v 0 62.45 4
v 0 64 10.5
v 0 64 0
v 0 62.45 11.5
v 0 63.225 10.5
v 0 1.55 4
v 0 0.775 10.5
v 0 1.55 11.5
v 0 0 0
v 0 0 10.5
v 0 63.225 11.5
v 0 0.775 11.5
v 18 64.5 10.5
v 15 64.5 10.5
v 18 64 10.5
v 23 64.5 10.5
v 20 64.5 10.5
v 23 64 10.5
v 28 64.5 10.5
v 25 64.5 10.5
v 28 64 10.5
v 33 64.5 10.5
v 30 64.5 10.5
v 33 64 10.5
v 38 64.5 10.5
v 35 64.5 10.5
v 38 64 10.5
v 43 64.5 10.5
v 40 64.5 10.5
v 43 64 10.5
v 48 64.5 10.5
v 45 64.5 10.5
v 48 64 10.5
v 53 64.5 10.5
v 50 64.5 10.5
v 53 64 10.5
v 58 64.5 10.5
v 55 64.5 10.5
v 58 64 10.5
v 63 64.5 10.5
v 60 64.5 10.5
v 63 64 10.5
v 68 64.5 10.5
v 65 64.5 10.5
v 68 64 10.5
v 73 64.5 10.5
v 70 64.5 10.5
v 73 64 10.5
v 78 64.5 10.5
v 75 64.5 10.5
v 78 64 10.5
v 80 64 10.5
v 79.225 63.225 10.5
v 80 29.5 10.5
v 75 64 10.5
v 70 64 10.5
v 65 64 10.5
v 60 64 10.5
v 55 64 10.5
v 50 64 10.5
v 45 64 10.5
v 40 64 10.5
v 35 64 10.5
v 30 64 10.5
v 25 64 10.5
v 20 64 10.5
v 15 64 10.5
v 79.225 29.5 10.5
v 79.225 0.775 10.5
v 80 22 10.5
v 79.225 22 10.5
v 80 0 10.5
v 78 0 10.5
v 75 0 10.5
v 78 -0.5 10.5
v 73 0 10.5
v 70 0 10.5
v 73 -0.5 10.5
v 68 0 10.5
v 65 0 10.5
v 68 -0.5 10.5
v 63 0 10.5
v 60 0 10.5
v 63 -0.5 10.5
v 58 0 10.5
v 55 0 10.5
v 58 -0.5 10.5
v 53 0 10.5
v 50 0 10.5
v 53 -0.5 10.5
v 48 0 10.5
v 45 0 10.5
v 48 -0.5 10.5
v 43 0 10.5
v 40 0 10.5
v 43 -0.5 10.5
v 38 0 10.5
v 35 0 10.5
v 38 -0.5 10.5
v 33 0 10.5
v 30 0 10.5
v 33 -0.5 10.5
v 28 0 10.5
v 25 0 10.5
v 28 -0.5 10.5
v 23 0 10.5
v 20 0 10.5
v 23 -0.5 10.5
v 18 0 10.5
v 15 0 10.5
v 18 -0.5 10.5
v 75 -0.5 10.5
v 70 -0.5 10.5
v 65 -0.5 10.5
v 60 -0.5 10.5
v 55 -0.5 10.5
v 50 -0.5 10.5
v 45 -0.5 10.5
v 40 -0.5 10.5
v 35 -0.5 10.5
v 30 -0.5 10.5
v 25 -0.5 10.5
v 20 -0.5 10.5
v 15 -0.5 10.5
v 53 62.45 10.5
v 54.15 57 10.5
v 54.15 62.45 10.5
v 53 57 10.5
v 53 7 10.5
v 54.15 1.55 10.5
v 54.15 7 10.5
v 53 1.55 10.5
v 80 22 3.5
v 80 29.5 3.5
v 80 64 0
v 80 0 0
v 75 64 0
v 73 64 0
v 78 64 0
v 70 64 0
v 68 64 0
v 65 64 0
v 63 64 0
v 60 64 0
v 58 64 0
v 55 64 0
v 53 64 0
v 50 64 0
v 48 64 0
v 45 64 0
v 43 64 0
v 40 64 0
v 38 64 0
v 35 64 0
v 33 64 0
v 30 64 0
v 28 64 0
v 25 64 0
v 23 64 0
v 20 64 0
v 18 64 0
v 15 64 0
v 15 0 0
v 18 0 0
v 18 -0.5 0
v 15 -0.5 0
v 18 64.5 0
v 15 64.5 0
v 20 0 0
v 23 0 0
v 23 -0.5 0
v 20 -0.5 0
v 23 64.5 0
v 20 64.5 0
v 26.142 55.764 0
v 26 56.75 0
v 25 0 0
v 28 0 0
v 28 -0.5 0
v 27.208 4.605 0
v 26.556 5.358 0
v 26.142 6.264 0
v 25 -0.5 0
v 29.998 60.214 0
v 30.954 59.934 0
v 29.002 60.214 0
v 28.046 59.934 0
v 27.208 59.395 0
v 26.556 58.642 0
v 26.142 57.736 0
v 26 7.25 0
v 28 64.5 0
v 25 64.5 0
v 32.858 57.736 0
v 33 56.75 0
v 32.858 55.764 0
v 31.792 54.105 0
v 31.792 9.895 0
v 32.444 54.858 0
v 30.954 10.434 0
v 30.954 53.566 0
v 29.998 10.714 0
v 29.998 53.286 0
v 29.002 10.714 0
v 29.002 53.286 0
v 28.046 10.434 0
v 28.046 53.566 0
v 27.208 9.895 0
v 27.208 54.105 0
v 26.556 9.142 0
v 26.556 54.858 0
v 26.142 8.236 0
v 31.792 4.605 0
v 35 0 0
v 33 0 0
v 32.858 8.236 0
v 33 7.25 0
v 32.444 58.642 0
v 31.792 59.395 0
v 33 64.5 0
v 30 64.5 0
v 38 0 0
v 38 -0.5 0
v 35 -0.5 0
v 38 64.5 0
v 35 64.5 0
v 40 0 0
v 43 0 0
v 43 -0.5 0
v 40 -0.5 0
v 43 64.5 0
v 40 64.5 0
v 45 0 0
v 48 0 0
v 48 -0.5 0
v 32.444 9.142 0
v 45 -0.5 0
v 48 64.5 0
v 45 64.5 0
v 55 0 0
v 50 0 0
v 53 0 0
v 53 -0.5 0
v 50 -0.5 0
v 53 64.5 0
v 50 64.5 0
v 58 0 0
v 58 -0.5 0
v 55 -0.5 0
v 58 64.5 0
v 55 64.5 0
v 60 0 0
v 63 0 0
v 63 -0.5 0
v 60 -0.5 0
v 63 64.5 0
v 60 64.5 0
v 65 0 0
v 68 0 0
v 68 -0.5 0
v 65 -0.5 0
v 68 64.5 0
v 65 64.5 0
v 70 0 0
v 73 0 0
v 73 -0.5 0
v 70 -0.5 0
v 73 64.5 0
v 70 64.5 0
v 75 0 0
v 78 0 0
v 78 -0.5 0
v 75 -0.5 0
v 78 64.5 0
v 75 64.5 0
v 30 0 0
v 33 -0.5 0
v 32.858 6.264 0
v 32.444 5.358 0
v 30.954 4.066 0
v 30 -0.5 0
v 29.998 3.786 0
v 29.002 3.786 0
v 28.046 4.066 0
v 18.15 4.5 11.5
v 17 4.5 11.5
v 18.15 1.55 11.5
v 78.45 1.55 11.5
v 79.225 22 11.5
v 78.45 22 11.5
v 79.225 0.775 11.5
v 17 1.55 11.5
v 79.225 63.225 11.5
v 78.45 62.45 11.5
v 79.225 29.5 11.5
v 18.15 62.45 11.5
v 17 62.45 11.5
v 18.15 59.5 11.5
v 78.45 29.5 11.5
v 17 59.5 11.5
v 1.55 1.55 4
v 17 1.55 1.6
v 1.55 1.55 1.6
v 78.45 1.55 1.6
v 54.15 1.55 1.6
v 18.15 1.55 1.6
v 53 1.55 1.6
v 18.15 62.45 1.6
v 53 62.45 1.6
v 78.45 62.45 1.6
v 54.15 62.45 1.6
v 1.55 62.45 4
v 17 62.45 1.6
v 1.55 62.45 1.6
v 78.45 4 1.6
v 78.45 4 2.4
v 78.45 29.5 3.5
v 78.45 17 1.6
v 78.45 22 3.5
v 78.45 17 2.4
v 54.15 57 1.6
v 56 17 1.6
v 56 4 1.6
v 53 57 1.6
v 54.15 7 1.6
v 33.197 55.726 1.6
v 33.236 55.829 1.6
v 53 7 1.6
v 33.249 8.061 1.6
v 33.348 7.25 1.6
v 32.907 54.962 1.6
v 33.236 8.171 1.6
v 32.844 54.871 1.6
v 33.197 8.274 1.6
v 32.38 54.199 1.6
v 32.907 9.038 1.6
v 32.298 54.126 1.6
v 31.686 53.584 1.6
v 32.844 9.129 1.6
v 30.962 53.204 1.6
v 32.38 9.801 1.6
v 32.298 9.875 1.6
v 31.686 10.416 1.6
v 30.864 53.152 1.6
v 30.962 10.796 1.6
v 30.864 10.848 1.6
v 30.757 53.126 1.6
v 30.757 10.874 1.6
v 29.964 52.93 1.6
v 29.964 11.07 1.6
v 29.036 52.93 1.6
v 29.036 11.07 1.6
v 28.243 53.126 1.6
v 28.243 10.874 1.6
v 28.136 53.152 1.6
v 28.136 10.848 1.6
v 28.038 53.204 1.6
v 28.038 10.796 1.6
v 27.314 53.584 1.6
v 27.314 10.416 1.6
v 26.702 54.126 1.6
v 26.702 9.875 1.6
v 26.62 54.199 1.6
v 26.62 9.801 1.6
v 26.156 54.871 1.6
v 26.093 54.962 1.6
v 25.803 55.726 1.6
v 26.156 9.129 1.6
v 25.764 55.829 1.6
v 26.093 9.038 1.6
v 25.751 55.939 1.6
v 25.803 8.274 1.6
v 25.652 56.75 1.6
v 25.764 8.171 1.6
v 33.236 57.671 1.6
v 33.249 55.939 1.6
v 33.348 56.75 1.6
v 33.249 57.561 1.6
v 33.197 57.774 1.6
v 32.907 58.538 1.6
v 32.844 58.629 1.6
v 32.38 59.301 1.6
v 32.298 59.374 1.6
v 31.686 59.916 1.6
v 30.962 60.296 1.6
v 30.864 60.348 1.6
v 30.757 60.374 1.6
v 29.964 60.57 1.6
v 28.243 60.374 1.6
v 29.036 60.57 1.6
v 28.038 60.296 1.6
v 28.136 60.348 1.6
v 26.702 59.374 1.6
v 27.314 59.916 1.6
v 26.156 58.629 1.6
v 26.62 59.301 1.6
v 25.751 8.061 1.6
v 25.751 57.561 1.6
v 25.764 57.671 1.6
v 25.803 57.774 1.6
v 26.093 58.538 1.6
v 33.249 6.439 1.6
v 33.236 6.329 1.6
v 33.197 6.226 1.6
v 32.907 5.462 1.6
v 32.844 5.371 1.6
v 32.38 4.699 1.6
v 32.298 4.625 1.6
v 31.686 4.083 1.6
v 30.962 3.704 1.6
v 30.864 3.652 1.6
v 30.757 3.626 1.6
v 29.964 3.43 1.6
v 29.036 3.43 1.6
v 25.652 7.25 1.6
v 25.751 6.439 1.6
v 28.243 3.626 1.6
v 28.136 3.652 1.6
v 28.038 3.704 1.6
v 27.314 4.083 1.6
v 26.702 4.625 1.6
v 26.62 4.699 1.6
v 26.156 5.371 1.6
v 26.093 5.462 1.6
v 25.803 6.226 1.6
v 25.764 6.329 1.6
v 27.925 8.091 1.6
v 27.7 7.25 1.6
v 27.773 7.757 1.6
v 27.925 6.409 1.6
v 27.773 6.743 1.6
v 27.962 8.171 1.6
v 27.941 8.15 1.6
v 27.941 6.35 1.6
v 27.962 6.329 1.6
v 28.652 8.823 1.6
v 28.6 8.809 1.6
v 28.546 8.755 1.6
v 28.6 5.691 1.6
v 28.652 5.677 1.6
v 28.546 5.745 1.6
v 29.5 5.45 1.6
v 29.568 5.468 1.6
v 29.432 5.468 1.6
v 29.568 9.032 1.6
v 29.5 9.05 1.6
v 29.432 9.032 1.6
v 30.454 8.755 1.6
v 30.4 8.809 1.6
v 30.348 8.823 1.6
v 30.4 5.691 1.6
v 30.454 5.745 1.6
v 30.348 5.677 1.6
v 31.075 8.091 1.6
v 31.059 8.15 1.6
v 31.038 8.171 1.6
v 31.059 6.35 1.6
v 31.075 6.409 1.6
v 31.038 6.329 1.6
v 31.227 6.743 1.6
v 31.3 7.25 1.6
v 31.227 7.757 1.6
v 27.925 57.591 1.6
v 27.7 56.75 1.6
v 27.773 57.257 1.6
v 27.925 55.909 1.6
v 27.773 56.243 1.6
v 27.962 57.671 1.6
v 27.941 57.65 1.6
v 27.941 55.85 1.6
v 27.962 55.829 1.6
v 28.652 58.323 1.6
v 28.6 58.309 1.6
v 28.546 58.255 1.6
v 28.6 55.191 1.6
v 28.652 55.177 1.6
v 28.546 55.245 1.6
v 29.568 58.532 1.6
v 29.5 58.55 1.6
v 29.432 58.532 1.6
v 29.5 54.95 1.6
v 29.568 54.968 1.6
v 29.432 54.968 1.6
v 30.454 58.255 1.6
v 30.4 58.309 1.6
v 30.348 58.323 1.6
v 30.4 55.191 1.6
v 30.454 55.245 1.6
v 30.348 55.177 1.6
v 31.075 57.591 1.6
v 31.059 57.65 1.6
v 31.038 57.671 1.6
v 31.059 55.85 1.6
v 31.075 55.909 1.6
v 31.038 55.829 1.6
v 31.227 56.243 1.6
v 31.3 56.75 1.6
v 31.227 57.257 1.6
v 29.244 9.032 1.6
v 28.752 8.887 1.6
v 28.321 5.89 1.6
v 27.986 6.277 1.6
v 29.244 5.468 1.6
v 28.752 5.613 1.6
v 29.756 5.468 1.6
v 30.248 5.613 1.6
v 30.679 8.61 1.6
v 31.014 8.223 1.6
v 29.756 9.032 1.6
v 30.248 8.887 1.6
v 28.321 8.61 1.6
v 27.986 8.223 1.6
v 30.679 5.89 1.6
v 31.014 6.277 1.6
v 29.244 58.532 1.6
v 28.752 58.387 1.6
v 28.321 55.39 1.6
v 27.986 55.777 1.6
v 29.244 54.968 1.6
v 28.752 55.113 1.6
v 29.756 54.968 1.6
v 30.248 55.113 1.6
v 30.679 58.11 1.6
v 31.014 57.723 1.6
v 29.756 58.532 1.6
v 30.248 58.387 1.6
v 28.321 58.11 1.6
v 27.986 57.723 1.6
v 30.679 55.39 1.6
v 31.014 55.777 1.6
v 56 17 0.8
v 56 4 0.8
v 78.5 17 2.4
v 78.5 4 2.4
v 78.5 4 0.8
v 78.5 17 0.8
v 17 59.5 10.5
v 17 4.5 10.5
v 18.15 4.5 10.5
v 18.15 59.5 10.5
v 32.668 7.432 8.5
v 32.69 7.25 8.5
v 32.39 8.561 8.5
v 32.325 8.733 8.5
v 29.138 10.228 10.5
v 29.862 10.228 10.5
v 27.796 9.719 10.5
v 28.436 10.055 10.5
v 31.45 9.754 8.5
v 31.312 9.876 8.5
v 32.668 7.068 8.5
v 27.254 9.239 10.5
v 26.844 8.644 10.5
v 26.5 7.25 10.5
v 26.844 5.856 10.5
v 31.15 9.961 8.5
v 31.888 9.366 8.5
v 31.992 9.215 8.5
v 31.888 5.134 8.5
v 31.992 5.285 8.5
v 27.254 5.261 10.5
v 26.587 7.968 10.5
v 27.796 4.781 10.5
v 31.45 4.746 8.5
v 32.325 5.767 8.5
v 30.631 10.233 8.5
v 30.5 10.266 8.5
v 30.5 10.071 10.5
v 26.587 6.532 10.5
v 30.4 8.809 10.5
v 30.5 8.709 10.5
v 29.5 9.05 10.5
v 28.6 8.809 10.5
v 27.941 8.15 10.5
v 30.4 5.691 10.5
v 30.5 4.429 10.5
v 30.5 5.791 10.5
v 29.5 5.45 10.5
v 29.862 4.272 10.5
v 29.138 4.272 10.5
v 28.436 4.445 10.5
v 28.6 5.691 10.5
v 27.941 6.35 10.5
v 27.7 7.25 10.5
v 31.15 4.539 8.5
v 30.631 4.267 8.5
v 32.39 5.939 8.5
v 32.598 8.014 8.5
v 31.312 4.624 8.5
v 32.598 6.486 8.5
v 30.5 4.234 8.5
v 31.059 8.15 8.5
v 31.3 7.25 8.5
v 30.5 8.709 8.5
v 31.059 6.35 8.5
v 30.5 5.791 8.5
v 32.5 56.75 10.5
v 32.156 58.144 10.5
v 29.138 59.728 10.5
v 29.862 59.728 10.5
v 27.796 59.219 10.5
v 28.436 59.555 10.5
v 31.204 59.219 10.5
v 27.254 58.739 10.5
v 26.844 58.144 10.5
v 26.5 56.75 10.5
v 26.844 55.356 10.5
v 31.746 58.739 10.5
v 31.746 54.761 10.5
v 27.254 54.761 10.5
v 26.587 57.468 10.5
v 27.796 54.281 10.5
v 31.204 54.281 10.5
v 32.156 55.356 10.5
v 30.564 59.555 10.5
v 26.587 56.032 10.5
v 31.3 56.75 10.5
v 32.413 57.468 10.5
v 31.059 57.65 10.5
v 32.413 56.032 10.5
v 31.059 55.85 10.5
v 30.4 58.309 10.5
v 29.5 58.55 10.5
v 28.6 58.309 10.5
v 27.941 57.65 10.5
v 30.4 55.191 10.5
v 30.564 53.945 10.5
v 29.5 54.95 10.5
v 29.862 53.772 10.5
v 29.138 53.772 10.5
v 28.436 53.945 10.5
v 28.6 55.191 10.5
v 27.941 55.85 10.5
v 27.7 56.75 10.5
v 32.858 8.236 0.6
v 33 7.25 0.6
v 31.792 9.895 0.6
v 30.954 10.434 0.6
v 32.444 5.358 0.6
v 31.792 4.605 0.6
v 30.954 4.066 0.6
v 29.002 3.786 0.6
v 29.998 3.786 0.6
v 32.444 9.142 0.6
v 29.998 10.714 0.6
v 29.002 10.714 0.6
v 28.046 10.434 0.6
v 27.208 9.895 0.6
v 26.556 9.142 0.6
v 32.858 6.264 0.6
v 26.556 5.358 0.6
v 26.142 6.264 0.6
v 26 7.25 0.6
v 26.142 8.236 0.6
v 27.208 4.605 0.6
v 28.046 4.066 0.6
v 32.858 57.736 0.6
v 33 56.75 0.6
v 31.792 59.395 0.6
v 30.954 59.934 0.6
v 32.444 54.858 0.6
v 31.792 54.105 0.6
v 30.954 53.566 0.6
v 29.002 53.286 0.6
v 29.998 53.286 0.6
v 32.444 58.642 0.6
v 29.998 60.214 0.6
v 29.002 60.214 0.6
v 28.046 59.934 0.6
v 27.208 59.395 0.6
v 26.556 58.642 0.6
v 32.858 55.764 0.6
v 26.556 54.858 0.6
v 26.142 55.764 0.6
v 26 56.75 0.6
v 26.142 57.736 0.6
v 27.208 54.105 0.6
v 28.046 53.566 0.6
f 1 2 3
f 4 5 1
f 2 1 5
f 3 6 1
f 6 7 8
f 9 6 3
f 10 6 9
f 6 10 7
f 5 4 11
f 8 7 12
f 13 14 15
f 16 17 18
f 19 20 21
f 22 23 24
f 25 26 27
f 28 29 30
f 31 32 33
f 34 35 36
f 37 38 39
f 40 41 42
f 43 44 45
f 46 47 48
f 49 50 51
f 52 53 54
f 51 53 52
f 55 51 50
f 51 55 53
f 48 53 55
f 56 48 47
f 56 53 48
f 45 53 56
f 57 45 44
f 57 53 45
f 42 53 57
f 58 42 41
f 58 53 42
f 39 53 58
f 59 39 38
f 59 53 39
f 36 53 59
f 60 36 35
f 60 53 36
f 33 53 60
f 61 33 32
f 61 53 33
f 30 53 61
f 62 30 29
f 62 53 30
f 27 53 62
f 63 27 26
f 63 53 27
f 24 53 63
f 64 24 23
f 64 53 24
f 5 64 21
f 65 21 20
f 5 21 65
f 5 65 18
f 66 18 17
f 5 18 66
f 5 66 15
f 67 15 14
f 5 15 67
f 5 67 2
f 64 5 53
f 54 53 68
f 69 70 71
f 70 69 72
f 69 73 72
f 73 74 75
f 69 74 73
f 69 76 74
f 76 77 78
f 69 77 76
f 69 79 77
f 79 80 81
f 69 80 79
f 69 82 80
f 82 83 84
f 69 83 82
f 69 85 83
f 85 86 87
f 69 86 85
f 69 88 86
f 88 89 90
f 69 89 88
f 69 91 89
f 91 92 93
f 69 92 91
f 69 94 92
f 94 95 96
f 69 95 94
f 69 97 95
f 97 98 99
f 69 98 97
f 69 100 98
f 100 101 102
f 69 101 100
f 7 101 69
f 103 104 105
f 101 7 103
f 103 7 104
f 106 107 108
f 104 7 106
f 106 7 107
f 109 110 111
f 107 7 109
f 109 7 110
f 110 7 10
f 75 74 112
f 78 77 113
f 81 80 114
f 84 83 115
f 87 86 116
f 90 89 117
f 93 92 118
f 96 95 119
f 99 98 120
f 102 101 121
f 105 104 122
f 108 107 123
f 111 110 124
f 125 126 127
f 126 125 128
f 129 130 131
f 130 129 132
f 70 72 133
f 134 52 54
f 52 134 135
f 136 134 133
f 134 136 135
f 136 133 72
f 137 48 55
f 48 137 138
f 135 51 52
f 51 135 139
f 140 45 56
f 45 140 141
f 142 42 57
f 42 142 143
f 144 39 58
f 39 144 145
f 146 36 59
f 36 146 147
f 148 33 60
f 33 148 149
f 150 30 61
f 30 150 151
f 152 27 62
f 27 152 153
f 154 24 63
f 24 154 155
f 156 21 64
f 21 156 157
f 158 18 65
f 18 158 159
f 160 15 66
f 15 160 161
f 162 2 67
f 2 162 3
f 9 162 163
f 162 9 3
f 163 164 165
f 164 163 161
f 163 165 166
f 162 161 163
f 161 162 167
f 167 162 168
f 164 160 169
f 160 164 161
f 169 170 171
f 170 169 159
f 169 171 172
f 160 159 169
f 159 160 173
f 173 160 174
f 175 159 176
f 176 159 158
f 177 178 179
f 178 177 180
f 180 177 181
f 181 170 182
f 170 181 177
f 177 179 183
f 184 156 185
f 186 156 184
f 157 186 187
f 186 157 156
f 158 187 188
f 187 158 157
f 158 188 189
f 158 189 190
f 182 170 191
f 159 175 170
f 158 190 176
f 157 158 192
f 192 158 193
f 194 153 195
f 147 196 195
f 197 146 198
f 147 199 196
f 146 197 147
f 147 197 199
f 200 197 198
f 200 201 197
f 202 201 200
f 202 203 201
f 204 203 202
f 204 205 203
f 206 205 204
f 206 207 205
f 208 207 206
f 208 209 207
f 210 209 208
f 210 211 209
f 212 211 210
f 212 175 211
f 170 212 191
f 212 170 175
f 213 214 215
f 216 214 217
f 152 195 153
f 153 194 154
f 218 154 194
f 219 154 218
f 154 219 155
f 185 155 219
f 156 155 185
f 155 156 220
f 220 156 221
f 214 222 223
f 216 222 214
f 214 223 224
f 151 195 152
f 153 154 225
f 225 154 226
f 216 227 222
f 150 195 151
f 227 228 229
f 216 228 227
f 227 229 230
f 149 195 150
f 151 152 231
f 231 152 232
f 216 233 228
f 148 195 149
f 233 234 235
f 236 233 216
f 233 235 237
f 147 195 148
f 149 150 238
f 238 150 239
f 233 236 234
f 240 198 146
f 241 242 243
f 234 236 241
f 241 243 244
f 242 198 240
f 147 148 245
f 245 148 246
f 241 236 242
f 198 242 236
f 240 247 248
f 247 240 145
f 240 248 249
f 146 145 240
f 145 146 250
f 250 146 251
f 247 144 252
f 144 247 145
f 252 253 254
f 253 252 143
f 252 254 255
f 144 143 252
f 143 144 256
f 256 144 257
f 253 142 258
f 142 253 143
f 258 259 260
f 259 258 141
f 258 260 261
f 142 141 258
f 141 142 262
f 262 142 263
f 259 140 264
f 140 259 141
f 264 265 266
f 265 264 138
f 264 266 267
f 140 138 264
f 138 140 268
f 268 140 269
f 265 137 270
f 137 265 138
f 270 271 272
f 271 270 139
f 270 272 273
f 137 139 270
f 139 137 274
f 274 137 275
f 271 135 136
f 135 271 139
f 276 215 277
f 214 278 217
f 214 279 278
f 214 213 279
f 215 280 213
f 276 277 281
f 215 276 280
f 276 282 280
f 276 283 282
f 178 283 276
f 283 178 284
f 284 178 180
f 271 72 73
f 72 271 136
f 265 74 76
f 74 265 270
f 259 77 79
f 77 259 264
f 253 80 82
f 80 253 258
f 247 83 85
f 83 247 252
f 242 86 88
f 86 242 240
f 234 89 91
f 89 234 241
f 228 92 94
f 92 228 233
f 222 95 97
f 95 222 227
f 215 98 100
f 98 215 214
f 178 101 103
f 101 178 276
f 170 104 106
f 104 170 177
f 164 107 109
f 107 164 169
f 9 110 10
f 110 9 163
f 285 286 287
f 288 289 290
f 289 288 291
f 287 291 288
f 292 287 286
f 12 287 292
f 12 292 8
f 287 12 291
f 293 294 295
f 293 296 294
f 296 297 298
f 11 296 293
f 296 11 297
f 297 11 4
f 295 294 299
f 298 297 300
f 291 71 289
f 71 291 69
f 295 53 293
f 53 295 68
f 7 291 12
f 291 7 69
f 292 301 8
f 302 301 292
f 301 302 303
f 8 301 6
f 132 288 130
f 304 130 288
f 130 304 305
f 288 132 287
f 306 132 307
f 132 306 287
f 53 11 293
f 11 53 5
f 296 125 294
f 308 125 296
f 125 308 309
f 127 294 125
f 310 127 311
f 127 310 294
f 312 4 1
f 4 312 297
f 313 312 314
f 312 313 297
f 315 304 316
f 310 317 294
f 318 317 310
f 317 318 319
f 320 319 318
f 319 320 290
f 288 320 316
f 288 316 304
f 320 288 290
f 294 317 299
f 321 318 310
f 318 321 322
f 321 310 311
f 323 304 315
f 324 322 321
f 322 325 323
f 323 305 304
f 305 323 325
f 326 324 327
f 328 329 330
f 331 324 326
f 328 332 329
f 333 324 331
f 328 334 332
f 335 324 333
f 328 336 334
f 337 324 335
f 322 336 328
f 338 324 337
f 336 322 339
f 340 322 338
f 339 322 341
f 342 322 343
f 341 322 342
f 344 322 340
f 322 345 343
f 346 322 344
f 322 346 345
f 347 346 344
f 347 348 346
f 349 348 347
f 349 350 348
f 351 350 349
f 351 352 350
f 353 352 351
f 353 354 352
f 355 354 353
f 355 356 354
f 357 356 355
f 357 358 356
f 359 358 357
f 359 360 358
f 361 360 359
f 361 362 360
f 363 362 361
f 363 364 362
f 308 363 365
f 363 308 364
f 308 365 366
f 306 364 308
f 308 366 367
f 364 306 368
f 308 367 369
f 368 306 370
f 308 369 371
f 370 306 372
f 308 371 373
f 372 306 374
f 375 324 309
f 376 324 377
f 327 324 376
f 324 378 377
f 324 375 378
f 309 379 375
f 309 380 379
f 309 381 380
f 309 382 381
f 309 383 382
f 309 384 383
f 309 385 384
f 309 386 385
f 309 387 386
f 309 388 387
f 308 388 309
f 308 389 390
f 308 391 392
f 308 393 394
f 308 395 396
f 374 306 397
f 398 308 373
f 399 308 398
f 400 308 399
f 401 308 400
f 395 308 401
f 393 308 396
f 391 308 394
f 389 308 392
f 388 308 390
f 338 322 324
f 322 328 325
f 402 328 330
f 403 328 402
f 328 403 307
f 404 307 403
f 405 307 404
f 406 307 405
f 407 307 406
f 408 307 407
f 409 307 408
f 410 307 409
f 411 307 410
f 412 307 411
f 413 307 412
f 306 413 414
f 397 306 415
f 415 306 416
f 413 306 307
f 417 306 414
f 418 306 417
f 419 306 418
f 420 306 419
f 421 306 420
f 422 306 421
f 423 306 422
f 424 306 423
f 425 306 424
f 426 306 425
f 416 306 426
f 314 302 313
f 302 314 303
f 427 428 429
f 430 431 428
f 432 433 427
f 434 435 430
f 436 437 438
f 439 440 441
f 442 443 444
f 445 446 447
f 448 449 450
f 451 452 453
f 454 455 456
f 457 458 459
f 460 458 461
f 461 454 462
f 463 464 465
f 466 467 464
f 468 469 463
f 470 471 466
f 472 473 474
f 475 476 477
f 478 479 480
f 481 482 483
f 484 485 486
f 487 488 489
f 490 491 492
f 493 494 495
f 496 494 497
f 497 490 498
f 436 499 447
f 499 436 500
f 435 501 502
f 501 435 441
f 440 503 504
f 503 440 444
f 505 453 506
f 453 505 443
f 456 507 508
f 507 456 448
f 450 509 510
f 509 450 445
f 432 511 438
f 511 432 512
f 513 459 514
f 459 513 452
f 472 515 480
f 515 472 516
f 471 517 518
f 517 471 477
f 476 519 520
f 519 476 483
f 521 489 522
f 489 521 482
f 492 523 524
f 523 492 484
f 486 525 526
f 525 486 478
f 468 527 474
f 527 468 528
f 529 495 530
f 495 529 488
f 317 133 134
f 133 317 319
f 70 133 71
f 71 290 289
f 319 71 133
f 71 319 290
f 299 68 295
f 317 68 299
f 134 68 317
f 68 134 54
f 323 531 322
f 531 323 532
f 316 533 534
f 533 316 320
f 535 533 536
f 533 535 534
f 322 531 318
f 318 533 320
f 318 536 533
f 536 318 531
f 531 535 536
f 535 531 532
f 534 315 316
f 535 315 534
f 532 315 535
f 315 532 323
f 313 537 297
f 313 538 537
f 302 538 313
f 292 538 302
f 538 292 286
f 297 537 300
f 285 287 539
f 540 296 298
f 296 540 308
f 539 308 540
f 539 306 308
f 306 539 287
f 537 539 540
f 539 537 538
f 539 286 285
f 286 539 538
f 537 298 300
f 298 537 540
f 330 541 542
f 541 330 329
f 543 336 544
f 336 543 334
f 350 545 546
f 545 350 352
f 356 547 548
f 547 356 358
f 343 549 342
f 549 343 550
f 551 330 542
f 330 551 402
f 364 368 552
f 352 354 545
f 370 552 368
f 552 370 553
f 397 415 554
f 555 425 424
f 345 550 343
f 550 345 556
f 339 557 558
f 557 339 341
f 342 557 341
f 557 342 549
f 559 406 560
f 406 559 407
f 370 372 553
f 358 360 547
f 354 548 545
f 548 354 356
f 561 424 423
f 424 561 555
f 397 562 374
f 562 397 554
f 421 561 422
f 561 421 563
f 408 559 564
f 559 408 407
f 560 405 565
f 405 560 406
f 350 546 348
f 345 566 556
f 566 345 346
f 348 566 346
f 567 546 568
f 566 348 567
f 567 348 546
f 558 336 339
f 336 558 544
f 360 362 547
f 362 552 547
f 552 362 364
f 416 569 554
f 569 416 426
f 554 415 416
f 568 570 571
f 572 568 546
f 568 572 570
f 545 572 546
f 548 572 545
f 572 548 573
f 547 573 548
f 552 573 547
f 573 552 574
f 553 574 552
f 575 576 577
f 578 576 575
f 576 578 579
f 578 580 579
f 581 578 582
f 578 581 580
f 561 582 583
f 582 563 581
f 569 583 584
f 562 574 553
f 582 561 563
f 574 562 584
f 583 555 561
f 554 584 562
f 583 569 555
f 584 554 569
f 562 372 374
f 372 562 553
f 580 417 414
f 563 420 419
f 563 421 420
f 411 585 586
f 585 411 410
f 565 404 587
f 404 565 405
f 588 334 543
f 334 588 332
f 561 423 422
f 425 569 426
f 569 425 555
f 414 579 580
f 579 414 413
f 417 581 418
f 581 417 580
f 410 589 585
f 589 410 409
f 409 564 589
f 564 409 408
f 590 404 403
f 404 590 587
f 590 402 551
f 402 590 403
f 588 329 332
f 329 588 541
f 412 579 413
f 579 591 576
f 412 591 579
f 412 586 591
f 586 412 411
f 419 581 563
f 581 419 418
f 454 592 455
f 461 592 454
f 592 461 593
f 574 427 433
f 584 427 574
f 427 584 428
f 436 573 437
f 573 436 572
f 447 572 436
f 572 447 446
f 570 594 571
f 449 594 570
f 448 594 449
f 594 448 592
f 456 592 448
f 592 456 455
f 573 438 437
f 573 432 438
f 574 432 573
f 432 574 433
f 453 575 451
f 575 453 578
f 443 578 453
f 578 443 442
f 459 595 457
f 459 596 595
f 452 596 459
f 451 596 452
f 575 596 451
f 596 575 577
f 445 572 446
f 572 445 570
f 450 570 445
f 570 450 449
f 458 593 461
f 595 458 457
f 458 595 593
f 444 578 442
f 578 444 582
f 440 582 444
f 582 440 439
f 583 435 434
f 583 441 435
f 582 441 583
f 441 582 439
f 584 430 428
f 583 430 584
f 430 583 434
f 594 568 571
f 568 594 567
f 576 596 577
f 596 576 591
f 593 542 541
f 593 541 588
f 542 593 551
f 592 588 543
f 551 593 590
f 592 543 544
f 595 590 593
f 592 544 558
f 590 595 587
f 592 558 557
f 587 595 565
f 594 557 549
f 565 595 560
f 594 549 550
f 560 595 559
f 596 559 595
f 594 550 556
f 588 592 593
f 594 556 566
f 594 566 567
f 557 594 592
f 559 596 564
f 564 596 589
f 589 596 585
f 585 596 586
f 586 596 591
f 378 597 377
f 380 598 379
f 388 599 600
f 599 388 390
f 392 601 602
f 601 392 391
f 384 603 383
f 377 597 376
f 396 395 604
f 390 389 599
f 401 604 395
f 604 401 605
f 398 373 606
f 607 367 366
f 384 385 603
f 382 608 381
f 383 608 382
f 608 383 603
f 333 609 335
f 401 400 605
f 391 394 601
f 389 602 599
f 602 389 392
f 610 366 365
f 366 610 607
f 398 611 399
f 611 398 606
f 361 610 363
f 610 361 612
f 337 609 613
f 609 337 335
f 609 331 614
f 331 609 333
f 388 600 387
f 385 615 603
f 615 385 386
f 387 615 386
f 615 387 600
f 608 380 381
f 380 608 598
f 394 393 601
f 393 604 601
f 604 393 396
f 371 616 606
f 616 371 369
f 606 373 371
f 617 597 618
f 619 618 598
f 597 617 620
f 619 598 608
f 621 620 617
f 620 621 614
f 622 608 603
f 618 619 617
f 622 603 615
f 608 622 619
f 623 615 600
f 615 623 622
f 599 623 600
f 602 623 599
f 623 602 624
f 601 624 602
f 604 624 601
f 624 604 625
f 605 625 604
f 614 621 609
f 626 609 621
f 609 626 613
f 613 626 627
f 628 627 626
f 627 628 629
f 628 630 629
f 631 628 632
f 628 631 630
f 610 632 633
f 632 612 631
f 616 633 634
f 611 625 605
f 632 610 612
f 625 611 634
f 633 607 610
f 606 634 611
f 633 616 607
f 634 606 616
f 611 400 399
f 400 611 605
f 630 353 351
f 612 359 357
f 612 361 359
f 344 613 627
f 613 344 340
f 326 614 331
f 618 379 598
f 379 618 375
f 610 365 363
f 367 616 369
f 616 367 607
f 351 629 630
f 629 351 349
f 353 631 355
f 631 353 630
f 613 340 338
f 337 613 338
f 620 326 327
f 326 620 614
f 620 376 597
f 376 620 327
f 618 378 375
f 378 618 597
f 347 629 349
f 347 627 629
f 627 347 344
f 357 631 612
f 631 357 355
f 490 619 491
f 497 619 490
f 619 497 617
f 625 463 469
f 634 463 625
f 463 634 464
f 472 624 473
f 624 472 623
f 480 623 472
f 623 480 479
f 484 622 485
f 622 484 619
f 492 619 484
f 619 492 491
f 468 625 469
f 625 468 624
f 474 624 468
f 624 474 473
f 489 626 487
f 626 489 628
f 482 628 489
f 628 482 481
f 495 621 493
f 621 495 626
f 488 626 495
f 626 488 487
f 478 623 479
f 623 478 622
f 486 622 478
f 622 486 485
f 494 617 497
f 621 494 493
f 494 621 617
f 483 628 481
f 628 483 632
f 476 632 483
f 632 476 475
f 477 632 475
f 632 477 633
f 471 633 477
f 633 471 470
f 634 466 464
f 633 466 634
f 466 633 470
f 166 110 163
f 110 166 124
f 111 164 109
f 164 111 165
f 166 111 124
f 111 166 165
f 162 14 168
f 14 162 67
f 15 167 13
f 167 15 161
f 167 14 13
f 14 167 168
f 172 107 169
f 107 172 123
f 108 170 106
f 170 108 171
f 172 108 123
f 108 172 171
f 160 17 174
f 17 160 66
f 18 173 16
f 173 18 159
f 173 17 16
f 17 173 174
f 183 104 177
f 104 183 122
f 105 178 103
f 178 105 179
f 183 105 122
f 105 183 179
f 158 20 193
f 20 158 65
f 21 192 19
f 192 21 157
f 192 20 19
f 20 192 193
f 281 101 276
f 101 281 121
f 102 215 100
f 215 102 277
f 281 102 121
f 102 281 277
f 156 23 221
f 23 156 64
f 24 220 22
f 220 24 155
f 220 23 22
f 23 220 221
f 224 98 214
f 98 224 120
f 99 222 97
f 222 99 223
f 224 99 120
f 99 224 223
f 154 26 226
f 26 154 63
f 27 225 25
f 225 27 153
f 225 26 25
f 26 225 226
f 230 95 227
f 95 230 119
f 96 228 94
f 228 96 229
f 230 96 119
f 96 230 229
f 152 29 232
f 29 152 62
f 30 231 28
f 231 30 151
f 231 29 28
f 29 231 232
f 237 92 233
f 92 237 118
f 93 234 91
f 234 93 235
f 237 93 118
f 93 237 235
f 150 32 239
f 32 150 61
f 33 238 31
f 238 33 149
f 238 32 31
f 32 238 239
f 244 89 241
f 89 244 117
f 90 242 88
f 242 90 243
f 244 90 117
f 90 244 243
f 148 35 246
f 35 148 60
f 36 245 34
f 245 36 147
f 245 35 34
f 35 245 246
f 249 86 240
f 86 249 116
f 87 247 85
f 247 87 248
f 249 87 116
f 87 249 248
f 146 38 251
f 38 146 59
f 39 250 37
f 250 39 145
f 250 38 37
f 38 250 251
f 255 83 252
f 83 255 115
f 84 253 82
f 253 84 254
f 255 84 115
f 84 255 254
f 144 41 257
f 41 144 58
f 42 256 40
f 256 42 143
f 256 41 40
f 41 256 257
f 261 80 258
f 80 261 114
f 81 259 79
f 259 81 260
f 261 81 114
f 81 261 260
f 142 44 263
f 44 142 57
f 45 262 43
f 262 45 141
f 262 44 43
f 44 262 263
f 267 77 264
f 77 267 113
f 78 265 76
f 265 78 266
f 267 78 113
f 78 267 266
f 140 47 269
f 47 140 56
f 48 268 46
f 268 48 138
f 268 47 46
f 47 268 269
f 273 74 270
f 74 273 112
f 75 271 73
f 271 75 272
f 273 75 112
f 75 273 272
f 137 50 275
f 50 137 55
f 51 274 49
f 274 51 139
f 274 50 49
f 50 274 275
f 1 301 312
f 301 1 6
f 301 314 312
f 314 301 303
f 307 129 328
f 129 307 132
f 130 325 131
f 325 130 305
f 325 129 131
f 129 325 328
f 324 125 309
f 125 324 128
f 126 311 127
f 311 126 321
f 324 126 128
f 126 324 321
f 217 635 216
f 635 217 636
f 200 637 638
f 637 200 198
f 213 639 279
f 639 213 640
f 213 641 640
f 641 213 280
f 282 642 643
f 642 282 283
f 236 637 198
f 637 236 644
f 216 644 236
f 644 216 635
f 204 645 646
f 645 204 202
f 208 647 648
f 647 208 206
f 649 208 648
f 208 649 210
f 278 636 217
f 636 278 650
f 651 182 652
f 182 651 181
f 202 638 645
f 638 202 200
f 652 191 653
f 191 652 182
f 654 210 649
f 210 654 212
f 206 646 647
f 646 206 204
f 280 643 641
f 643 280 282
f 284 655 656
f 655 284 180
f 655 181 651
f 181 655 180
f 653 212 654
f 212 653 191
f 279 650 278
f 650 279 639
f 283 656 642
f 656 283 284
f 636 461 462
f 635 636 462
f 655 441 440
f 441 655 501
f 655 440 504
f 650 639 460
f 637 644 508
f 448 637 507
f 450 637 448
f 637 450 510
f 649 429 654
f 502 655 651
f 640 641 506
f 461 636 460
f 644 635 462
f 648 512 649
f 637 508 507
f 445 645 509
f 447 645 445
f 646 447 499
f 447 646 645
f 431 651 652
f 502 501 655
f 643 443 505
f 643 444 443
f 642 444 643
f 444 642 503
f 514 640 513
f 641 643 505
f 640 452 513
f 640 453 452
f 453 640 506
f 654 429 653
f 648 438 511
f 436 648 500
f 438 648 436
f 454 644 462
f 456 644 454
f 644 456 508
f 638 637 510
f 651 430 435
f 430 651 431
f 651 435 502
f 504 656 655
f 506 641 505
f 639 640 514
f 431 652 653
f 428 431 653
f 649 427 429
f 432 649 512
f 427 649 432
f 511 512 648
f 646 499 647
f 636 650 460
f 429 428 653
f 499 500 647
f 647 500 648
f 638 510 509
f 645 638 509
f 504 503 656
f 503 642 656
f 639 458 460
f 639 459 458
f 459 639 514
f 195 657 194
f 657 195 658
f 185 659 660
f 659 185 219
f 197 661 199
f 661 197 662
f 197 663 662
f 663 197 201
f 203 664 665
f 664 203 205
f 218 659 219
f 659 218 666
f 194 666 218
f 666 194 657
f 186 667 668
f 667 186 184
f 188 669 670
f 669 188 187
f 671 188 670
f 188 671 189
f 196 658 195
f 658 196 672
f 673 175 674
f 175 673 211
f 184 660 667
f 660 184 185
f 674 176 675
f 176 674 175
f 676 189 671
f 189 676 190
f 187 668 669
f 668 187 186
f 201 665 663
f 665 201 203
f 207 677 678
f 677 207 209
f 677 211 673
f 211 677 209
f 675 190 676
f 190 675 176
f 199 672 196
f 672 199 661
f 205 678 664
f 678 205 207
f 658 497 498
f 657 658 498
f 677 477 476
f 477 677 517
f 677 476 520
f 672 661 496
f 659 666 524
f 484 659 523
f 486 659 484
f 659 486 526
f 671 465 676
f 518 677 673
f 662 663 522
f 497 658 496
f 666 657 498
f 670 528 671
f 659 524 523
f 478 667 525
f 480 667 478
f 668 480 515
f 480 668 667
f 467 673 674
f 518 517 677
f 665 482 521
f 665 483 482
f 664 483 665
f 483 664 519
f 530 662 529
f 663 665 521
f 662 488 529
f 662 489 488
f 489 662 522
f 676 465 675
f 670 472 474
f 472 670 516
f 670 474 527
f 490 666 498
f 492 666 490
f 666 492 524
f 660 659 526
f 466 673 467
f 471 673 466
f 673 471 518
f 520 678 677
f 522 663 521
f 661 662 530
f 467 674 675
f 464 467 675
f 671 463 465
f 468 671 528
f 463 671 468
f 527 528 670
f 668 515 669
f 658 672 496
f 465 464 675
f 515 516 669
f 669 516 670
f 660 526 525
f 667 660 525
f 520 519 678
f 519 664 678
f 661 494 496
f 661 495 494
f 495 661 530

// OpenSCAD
/* Ultimate Cart shell
   (c) R.Edwards 2017
*/

ridge_width = 0.5;
cart_length=80;
cart_width=65 - (ridge_width*2);
cart_height=11.5;
screw_sep = 49.5;
front_thickness = 1.6;
sides_thickness = 1.6 - 0.05;
support_thickness = 1.2 - 0.05;
support_height = 10.5;
rim_height=1;

difference() {
    union() {
        difference() {
            // main shell
            union() {
                cube([cart_length, cart_width, cart_height-rim_height]);
                // rim
                translate([0, sides_thickness/2, cart_height-rim_height])
                    cube([cart_length-sides_thickness/2, sides_thickness/2, rim_height]);
                translate([0, cart_width-sides_thickness, cart_height-rim_height])
                    cube([cart_length-sides_thickness/2, sides_thickness/2, rim_height]);
                translate([cart_length-sides_thickness, sides_thickness/2, cart_height-rim_height])
                    cube([sides_thickness/2, cart_width-sides_thickness, rim_height]);
            }
            // make hollow
            translate([0, sides_thickness, front_thickness])
                cube([cart_length-sides_thickness,
                    cart_width-sides_thickness*2,
                    cart_height-front_thickness]);
            // cutout reset button slot
            translate([cart_length-sides_thickness, 22, cart_height-8])
                cube([sides_thickness, 7.5, 8]);
            // cutout programming header
            translate([56, 4, front_thickness/2])
                cube([22.5, 13, front_thickness]);
        }    
        // end
        cube([sides_thickness, cart_width, 4]);
        // pcb supports
        difference() {
            translate([17, sides_thickness, 0])
                cube([support_thickness, cart_width-sides_thickness*2, cart_height]);
            translate([17, (cart_width-55)/2, support_height])
                cube([support_thickness, 55, cart_height-support_height]);
        }
        translate([53, 0, 0])
            cube([support_thickness, 7, support_height]);
        translate([53, cart_width-7, 0])
            cube([support_thickness, 7, support_height]);
        // screw holes
        difference() {
            translate([29.5, (cart_width-screw_sep)/2, 0])
                difference() {
                    cylinder(h = support_height, r1 = 4, r2 = 3,  $fs = 1);
                    cylinder(h = support_height, r1 = 1.8, r2 = 1.8,  $fs = 1);
                }
            translate([29.5+1, (cart_width-screw_sep)/2-5, support_height-2])
                cube([10, 10, 2]);
        }
        translate([29.5, cart_width-(cart_width-screw_sep)/2, 0])
            difference() {
                cylinder(h = support_height, r1 = 4, r2 = 3,  $fs = 1);
                cylinder(h = support_height, r1 = 1.8, r2 = 1.8,  $fs = 1);
            }
        // ridges
        for (i = [15: 5: cart_length-5])
            union() {
                translate([i, -ridge_width, 0])
                    cube([3, ridge_width, cart_height-rim_height]);
                translate([i, cart_width, 0])
                    cube([3, ridge_width, cart_height-rim_height]);
            }
    }
    // screw head
    translate([29.5, (cart_width-screw_sep)/2, 0])
        cylinder(h = 0.6, r1 = 3.5, r2 = 3.5,  $fs = 1);
    translate([29.5, (cart_width-screw_sep)/2, 0.6])
        cylinder(h = front_thickness-0.6, r1 = 3.5, r2 = 1.8,  $fs = 1);

    translate([29.5, cart_width-(cart_width-screw_sep)/2, 0])
        cylinder(h = 0.6, r1 = 3.5, r2 = 3.5,  $fs = 1);
    translate([29.5, cart_width-(cart_width-screw_sep)/2, 0.6])
        cylinder(h = front_thickness-0.6, r1 = 3.5, r2 = 1.8,  $fs = 1);
}
